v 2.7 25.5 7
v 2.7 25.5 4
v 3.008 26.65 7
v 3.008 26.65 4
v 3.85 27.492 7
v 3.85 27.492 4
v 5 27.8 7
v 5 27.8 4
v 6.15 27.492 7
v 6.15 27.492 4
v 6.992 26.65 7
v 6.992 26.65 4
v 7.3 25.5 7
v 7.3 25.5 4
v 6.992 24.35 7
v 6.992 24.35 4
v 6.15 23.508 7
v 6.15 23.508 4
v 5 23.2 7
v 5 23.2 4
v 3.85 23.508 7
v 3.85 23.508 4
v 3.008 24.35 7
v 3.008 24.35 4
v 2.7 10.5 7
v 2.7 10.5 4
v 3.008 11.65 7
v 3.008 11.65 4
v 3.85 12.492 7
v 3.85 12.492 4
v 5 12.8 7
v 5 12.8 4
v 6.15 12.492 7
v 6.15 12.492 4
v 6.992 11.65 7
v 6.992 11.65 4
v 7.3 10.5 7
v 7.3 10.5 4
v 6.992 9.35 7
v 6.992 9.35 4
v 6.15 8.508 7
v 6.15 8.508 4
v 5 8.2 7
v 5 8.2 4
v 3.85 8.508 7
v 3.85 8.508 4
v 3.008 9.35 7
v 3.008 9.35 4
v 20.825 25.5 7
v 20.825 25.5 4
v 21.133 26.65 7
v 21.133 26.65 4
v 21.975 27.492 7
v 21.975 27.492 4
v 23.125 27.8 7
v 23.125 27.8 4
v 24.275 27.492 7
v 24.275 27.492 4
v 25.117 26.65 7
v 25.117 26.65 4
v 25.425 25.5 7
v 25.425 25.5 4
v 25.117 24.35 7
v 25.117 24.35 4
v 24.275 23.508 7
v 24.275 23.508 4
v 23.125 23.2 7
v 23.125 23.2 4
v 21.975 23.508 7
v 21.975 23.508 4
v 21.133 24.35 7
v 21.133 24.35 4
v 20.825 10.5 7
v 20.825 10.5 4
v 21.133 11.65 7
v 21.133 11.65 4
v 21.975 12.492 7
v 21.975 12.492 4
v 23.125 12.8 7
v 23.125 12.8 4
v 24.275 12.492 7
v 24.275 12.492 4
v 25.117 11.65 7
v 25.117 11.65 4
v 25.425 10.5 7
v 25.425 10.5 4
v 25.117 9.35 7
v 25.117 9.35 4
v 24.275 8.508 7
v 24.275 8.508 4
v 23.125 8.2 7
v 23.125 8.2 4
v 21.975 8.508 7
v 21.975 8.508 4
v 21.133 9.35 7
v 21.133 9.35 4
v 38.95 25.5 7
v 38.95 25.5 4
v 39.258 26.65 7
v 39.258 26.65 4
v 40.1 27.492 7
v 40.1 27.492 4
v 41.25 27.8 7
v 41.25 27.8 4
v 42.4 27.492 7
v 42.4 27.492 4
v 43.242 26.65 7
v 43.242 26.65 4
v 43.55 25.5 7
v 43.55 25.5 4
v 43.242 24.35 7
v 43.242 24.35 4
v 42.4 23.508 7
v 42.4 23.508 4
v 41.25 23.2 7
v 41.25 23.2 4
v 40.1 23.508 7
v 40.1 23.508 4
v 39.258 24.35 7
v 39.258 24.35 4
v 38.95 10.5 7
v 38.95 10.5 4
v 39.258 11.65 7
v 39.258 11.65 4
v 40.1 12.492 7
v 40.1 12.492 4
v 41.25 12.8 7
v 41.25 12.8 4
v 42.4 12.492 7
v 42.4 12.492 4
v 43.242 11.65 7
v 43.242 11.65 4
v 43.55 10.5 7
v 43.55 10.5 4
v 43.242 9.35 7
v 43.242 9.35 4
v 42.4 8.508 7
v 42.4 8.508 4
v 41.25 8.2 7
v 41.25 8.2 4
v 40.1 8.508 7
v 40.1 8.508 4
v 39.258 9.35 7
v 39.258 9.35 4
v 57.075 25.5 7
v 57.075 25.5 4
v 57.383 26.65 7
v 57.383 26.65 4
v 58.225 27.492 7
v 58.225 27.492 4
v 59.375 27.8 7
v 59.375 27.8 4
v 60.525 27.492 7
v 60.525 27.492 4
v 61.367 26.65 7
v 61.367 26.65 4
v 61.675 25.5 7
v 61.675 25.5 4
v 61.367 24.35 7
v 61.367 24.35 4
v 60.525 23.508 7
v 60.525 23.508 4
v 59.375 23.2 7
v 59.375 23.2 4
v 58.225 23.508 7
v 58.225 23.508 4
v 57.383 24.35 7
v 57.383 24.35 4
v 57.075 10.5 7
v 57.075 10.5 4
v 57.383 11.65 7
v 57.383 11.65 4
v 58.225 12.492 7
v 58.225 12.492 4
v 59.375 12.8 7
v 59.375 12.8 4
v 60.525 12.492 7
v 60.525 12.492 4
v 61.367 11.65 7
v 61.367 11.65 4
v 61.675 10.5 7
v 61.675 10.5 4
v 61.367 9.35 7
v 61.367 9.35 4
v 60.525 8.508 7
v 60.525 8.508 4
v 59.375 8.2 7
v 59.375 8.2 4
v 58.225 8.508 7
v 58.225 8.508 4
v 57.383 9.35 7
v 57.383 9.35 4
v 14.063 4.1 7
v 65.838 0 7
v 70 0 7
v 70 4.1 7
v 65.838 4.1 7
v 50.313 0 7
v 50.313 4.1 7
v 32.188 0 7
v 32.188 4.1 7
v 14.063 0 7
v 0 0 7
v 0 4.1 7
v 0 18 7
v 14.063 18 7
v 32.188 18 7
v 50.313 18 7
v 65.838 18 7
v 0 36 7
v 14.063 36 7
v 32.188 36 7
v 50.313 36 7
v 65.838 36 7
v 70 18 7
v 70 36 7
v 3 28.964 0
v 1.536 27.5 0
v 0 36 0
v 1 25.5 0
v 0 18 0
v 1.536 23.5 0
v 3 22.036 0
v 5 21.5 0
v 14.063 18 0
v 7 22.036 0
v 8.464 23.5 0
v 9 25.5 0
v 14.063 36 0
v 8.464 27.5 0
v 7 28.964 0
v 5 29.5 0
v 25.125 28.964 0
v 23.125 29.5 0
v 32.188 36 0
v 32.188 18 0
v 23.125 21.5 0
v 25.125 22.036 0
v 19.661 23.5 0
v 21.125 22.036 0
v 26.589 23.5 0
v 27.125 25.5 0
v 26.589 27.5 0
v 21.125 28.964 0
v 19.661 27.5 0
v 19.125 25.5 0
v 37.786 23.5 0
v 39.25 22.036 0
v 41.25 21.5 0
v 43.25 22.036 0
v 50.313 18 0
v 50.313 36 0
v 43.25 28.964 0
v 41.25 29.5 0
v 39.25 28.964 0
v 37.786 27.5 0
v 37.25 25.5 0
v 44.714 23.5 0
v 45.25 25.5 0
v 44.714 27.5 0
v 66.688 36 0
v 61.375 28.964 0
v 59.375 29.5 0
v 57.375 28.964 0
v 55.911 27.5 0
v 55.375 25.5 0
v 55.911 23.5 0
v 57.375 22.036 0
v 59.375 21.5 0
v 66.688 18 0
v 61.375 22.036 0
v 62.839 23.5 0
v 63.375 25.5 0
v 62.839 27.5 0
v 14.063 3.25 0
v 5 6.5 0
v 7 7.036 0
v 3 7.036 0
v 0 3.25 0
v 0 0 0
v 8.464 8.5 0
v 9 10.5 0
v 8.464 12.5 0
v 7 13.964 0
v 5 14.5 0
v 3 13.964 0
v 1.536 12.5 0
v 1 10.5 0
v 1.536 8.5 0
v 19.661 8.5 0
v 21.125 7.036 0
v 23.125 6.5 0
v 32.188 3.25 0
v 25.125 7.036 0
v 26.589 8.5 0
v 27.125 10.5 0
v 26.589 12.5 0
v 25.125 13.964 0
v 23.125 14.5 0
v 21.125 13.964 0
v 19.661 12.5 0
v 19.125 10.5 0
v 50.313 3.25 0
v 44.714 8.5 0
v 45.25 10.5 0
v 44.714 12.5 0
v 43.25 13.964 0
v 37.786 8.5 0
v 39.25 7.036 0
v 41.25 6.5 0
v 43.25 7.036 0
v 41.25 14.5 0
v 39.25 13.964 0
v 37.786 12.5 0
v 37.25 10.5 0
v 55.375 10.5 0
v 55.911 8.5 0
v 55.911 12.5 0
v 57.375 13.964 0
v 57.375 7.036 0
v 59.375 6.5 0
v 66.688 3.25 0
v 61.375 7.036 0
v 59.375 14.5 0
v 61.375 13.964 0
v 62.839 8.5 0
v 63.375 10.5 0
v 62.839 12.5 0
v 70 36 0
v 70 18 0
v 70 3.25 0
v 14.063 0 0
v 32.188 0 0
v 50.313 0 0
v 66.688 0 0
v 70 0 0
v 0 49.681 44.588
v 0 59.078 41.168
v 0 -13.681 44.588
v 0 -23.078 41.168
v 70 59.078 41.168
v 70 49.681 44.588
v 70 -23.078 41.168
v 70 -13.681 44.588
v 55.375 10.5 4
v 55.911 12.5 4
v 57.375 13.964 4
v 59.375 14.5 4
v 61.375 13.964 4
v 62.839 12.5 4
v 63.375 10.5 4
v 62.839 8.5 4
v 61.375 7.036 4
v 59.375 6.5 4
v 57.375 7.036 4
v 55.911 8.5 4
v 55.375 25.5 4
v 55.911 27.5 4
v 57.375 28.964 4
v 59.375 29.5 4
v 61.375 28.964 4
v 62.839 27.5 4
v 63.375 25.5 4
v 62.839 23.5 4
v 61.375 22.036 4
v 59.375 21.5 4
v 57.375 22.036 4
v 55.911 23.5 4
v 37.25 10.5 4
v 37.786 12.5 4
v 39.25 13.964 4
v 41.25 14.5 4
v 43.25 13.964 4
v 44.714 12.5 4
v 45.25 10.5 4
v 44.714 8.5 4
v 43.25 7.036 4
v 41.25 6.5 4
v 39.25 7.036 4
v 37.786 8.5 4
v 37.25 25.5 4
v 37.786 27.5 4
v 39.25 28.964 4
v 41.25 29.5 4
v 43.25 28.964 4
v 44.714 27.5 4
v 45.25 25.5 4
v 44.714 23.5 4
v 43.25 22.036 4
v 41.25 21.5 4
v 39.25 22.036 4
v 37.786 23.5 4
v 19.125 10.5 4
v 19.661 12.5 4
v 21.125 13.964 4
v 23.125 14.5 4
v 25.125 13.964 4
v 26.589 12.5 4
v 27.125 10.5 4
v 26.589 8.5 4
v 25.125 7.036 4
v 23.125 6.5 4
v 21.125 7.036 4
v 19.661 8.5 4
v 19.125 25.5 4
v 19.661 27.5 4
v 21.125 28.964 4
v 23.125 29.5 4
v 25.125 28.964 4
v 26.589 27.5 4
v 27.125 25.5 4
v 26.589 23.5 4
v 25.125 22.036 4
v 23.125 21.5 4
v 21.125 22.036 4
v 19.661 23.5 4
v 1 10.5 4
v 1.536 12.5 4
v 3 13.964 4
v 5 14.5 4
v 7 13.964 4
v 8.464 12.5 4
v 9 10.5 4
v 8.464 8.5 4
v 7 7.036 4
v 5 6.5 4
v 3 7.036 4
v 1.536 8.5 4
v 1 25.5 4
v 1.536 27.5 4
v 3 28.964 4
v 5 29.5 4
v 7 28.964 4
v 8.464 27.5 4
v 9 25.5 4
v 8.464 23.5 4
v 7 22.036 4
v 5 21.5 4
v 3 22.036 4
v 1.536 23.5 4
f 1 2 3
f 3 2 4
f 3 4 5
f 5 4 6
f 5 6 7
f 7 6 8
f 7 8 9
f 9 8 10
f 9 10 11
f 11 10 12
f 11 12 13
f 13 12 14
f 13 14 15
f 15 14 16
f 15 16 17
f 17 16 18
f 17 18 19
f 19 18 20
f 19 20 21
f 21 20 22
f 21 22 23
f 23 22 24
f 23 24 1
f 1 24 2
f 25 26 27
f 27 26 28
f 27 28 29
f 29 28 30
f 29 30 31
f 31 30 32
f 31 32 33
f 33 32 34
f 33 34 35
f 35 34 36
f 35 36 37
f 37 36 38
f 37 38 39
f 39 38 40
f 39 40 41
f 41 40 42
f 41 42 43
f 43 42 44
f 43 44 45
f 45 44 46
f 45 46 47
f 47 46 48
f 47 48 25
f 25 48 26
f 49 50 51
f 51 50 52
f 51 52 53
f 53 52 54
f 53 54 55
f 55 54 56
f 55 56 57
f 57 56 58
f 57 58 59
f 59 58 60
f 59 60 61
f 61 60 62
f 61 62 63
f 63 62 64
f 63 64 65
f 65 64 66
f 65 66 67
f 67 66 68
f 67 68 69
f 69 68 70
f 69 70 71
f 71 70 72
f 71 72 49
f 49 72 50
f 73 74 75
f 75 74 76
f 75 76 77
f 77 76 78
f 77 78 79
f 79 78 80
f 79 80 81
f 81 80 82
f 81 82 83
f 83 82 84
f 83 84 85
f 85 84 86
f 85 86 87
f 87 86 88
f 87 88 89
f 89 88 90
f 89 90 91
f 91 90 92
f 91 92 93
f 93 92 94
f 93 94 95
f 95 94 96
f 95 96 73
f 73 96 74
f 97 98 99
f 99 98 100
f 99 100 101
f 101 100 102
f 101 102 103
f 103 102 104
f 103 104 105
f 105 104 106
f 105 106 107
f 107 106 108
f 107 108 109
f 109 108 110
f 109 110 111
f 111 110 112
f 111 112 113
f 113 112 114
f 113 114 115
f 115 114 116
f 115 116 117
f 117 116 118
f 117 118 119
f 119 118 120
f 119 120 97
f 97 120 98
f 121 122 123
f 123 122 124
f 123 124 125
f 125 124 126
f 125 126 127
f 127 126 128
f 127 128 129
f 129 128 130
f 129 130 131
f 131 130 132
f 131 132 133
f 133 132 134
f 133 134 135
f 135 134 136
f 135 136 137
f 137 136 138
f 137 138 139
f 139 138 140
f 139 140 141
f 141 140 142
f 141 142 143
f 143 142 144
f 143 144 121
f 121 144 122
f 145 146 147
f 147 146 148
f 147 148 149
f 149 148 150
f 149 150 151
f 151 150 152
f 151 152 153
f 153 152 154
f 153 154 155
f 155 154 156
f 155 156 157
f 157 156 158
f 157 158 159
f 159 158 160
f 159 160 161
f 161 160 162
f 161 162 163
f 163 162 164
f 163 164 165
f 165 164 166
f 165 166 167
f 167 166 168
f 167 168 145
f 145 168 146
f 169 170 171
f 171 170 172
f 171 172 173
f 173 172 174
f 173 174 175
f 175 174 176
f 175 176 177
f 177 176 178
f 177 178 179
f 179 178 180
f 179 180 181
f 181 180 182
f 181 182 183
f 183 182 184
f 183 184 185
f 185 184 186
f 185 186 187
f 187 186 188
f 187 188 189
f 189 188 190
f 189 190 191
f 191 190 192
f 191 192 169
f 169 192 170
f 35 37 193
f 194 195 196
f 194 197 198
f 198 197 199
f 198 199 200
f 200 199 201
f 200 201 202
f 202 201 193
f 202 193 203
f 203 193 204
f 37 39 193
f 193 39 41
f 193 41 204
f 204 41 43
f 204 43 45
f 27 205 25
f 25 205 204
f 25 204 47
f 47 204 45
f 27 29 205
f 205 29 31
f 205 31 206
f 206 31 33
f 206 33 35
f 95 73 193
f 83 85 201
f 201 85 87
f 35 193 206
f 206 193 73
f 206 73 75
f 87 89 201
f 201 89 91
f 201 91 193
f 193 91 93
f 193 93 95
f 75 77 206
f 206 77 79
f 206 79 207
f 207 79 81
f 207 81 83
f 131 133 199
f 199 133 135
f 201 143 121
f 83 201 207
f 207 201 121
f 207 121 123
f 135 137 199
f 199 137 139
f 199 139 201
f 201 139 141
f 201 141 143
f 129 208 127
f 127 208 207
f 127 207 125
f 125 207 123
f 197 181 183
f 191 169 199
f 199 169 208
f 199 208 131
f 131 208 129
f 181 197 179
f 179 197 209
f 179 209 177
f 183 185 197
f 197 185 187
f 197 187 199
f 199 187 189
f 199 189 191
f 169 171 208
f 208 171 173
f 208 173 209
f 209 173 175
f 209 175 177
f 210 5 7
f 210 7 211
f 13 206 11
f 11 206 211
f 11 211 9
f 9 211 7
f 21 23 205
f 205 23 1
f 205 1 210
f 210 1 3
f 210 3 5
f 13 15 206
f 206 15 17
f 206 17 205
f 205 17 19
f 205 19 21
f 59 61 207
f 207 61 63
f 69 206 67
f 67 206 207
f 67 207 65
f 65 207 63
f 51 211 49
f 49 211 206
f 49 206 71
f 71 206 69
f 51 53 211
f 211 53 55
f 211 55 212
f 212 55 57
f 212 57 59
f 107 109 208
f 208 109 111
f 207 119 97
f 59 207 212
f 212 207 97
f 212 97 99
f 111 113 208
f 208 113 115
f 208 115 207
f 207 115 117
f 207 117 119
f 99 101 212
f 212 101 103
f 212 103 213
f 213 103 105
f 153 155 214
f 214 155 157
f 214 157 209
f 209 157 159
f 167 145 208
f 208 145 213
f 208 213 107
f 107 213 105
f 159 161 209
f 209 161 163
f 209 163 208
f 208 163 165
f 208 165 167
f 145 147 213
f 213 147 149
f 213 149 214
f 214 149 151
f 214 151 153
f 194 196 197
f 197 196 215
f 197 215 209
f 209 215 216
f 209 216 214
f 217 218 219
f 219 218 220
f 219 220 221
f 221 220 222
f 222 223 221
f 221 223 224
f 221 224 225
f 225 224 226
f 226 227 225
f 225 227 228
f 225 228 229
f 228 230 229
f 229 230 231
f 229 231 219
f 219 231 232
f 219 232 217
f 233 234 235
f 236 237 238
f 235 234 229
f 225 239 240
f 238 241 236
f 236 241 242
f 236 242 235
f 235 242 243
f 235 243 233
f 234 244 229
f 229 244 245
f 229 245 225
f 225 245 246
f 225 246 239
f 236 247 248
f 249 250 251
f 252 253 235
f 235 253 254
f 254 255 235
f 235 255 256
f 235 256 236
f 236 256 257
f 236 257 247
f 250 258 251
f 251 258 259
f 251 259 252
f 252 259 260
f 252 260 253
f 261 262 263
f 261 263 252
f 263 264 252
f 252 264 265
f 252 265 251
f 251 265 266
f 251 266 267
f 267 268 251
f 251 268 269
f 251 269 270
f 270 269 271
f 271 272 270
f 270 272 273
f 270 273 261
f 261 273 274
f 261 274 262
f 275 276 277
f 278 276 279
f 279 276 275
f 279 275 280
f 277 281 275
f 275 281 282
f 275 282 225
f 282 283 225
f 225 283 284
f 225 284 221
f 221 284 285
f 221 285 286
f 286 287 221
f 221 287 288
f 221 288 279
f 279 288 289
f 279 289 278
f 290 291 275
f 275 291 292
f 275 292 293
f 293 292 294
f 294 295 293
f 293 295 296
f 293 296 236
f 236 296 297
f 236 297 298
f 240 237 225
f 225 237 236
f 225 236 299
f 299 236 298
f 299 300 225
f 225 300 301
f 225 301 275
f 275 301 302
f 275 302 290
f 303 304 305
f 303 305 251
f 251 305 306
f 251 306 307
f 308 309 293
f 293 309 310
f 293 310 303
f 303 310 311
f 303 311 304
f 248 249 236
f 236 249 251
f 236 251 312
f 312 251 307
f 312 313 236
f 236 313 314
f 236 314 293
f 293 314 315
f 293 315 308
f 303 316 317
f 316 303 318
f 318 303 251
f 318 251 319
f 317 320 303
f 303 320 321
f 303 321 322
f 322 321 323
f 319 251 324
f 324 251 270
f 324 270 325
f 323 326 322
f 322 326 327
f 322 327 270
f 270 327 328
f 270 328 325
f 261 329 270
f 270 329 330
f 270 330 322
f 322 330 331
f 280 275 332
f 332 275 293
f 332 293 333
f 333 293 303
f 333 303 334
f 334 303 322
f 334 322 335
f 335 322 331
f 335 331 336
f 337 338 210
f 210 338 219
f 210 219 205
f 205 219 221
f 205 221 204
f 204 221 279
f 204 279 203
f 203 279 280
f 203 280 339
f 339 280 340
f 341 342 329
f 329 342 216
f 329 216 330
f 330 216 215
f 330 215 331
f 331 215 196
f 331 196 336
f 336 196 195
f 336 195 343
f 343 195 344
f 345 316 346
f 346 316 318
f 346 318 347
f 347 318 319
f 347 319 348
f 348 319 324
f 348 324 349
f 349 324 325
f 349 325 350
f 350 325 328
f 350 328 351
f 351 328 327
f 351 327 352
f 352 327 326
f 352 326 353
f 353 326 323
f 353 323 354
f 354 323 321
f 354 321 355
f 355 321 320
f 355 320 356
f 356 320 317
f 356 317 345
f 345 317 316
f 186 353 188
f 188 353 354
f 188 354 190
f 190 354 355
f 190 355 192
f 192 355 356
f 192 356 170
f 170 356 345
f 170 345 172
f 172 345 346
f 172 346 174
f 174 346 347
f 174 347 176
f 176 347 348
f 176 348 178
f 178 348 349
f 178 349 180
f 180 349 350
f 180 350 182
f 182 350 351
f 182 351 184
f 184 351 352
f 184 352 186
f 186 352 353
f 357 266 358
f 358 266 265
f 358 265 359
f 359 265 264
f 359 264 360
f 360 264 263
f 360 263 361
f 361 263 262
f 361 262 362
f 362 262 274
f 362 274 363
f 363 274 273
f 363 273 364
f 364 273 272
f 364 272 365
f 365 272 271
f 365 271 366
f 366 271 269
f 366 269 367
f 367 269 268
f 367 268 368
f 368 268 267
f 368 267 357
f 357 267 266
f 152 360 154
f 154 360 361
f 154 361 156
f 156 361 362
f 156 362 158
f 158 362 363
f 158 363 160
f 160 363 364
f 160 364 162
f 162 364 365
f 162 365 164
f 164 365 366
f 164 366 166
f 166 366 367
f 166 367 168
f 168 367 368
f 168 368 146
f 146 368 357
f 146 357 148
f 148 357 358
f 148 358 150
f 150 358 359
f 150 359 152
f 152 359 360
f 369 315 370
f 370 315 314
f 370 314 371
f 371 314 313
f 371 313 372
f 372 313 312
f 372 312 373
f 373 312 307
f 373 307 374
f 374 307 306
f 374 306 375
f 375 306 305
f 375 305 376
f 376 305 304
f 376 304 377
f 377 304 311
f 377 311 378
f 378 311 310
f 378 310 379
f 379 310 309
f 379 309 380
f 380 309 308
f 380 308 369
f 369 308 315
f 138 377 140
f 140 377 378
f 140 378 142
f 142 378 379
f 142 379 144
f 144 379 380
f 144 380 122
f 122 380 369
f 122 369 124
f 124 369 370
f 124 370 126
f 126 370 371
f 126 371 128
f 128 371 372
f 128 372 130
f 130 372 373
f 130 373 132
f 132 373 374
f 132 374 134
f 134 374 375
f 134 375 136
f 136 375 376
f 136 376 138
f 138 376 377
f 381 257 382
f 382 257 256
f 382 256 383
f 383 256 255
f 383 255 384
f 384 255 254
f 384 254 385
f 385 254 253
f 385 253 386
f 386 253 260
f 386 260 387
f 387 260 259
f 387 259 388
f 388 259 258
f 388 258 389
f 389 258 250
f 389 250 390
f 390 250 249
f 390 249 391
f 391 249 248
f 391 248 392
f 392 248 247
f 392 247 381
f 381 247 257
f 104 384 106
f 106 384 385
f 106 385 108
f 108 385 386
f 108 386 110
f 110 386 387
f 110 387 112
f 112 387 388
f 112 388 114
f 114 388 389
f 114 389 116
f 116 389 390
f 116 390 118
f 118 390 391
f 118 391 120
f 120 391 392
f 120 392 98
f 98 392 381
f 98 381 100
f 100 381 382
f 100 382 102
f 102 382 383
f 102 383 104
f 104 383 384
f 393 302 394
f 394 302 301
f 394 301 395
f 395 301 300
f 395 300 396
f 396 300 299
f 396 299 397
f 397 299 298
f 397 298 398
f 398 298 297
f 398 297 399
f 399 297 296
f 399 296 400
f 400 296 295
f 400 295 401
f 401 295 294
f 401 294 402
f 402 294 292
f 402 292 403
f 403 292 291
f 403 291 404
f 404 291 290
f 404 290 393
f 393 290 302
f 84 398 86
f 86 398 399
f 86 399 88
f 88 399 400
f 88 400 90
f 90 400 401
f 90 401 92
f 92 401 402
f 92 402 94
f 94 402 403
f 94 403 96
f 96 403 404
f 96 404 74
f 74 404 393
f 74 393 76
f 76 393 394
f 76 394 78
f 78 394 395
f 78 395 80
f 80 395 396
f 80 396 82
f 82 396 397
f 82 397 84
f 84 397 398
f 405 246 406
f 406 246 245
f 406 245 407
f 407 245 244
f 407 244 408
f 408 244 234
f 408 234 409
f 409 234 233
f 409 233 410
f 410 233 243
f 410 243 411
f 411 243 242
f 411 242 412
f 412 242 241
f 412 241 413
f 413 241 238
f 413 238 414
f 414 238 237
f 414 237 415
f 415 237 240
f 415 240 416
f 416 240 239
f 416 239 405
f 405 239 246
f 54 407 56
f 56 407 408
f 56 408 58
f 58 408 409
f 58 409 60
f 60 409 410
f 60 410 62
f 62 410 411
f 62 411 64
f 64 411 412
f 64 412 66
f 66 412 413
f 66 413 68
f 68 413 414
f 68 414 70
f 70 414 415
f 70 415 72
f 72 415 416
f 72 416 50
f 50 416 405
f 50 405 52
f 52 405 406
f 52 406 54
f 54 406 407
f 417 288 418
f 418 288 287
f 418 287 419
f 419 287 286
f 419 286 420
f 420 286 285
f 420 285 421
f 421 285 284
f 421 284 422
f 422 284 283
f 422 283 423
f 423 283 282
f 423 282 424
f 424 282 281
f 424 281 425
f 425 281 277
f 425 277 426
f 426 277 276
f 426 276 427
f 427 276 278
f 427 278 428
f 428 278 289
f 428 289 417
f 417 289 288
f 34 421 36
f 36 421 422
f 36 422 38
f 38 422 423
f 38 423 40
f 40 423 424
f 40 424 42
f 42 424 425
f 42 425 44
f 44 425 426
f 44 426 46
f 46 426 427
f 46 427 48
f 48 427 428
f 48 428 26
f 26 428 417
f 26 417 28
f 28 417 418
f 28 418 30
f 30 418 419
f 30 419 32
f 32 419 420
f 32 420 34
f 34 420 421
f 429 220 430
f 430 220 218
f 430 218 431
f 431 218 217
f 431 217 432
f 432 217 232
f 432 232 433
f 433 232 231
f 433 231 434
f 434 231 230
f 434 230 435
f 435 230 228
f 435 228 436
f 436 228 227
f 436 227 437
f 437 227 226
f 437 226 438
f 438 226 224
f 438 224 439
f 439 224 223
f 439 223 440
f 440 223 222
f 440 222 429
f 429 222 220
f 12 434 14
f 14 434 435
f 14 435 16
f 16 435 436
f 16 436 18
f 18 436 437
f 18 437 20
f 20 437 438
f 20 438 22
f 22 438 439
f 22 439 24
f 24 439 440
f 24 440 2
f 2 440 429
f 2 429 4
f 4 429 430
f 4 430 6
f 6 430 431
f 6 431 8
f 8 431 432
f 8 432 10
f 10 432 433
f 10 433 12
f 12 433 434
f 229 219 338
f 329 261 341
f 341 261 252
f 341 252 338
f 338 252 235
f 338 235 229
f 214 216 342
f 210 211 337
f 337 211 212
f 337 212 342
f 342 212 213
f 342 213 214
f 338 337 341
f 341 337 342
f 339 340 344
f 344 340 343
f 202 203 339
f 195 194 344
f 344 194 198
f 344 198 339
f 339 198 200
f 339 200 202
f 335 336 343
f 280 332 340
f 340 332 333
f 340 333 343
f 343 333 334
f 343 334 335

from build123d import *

# Parameters (mm, degrees)
ESQUISSE1_W             = 70
ESQUISSE1_H             = 36
ESQUISSE1_R             = 2.3
BOSS_EXTRU_1_DEPTH      = 7
ESQUISSE2_R             = 4
ENL_V_MAT_EXTRU_1_DEPTH = 4
BOSS_EXTRU_2_DEPTH      = 70


with BuildPart() as part:
    # Esquisse1 → Boss.-Extru.1 (new body)
    with BuildSketch(Plane.XY):
        with Locations((35, 18)):
            Rectangle(ESQUISSE1_W, ESQUISSE1_H)
        with Locations((5, 25.5)):
            Circle(ESQUISSE1_R, mode=Mode.SUBTRACT)
        with Locations((5, 10.5)):
            Circle(ESQUISSE1_R, mode=Mode.SUBTRACT)
        with Locations((23.125, 25.5)):
            Circle(ESQUISSE1_R, mode=Mode.SUBTRACT)
        with Locations((23.125, 10.5)):
            Circle(ESQUISSE1_R, mode=Mode.SUBTRACT)
        with Locations((41.25, 25.5)):
            Circle(ESQUISSE1_R, mode=Mode.SUBTRACT)
        with Locations((41.25, 10.5)):
            Circle(ESQUISSE1_R, mode=Mode.SUBTRACT)
        with Locations((59.375, 25.5)):
            Circle(ESQUISSE1_R, mode=Mode.SUBTRACT)
        with Locations((59.375, 10.5)):
            Circle(ESQUISSE1_R, mode=Mode.SUBTRACT)
    extrude(amount=BOSS_EXTRU_1_DEPTH)

    # Esquisse2 → Enlèv. mat.-Extru.1 (cut)
    with BuildSketch(Plane(origin=(0, 0, 0), x_dir=(-1, 0, 0), z_dir=(0, 0, -1))):
        with Locations((-59.375, 25.5)):
            Circle(ESQUISSE2_R)
        with Locations((-41.25, 25.5)):
            Circle(ESQUISSE2_R)
        with Locations((-23.125, 25.5)):
            Circle(ESQUISSE2_R)
        with Locations((-5, 25.5)):
            Circle(ESQUISSE2_R)
        with Locations((-5, 10.5)):
            Circle(ESQUISSE2_R)
        with Locations((-23.125, 10.5)):
            Circle(ESQUISSE2_R)
        with Locations((-41.25, 10.5)):
            Circle(ESQUISSE2_R)
        with Locations((-59.375, 10.5)):
            Circle(ESQUISSE2_R)
    extrude(amount=-ENL_V_MAT_EXTRU_1_DEPTH, mode=Mode.SUBTRACT)

    # Esquisse3 → Boss.-Extru.2 (add)
    with BuildSketch(Plane(origin=(70, 0, 0), x_dir=(0, 0, -1), z_dir=(1, 0, 0))):
        Polygon((-41.167503398, 59.077731941), (0, 36), (-7, 36), (-44.587704831, 49.680805733), align=None)
        Polygon((-44.587704831, -13.680805733), (-41.167503398, -23.077731941), (0, 0), (-7, 0), align=None)
    extrude(amount=-BOSS_EXTRU_2_DEPTH)


solid = part.part
